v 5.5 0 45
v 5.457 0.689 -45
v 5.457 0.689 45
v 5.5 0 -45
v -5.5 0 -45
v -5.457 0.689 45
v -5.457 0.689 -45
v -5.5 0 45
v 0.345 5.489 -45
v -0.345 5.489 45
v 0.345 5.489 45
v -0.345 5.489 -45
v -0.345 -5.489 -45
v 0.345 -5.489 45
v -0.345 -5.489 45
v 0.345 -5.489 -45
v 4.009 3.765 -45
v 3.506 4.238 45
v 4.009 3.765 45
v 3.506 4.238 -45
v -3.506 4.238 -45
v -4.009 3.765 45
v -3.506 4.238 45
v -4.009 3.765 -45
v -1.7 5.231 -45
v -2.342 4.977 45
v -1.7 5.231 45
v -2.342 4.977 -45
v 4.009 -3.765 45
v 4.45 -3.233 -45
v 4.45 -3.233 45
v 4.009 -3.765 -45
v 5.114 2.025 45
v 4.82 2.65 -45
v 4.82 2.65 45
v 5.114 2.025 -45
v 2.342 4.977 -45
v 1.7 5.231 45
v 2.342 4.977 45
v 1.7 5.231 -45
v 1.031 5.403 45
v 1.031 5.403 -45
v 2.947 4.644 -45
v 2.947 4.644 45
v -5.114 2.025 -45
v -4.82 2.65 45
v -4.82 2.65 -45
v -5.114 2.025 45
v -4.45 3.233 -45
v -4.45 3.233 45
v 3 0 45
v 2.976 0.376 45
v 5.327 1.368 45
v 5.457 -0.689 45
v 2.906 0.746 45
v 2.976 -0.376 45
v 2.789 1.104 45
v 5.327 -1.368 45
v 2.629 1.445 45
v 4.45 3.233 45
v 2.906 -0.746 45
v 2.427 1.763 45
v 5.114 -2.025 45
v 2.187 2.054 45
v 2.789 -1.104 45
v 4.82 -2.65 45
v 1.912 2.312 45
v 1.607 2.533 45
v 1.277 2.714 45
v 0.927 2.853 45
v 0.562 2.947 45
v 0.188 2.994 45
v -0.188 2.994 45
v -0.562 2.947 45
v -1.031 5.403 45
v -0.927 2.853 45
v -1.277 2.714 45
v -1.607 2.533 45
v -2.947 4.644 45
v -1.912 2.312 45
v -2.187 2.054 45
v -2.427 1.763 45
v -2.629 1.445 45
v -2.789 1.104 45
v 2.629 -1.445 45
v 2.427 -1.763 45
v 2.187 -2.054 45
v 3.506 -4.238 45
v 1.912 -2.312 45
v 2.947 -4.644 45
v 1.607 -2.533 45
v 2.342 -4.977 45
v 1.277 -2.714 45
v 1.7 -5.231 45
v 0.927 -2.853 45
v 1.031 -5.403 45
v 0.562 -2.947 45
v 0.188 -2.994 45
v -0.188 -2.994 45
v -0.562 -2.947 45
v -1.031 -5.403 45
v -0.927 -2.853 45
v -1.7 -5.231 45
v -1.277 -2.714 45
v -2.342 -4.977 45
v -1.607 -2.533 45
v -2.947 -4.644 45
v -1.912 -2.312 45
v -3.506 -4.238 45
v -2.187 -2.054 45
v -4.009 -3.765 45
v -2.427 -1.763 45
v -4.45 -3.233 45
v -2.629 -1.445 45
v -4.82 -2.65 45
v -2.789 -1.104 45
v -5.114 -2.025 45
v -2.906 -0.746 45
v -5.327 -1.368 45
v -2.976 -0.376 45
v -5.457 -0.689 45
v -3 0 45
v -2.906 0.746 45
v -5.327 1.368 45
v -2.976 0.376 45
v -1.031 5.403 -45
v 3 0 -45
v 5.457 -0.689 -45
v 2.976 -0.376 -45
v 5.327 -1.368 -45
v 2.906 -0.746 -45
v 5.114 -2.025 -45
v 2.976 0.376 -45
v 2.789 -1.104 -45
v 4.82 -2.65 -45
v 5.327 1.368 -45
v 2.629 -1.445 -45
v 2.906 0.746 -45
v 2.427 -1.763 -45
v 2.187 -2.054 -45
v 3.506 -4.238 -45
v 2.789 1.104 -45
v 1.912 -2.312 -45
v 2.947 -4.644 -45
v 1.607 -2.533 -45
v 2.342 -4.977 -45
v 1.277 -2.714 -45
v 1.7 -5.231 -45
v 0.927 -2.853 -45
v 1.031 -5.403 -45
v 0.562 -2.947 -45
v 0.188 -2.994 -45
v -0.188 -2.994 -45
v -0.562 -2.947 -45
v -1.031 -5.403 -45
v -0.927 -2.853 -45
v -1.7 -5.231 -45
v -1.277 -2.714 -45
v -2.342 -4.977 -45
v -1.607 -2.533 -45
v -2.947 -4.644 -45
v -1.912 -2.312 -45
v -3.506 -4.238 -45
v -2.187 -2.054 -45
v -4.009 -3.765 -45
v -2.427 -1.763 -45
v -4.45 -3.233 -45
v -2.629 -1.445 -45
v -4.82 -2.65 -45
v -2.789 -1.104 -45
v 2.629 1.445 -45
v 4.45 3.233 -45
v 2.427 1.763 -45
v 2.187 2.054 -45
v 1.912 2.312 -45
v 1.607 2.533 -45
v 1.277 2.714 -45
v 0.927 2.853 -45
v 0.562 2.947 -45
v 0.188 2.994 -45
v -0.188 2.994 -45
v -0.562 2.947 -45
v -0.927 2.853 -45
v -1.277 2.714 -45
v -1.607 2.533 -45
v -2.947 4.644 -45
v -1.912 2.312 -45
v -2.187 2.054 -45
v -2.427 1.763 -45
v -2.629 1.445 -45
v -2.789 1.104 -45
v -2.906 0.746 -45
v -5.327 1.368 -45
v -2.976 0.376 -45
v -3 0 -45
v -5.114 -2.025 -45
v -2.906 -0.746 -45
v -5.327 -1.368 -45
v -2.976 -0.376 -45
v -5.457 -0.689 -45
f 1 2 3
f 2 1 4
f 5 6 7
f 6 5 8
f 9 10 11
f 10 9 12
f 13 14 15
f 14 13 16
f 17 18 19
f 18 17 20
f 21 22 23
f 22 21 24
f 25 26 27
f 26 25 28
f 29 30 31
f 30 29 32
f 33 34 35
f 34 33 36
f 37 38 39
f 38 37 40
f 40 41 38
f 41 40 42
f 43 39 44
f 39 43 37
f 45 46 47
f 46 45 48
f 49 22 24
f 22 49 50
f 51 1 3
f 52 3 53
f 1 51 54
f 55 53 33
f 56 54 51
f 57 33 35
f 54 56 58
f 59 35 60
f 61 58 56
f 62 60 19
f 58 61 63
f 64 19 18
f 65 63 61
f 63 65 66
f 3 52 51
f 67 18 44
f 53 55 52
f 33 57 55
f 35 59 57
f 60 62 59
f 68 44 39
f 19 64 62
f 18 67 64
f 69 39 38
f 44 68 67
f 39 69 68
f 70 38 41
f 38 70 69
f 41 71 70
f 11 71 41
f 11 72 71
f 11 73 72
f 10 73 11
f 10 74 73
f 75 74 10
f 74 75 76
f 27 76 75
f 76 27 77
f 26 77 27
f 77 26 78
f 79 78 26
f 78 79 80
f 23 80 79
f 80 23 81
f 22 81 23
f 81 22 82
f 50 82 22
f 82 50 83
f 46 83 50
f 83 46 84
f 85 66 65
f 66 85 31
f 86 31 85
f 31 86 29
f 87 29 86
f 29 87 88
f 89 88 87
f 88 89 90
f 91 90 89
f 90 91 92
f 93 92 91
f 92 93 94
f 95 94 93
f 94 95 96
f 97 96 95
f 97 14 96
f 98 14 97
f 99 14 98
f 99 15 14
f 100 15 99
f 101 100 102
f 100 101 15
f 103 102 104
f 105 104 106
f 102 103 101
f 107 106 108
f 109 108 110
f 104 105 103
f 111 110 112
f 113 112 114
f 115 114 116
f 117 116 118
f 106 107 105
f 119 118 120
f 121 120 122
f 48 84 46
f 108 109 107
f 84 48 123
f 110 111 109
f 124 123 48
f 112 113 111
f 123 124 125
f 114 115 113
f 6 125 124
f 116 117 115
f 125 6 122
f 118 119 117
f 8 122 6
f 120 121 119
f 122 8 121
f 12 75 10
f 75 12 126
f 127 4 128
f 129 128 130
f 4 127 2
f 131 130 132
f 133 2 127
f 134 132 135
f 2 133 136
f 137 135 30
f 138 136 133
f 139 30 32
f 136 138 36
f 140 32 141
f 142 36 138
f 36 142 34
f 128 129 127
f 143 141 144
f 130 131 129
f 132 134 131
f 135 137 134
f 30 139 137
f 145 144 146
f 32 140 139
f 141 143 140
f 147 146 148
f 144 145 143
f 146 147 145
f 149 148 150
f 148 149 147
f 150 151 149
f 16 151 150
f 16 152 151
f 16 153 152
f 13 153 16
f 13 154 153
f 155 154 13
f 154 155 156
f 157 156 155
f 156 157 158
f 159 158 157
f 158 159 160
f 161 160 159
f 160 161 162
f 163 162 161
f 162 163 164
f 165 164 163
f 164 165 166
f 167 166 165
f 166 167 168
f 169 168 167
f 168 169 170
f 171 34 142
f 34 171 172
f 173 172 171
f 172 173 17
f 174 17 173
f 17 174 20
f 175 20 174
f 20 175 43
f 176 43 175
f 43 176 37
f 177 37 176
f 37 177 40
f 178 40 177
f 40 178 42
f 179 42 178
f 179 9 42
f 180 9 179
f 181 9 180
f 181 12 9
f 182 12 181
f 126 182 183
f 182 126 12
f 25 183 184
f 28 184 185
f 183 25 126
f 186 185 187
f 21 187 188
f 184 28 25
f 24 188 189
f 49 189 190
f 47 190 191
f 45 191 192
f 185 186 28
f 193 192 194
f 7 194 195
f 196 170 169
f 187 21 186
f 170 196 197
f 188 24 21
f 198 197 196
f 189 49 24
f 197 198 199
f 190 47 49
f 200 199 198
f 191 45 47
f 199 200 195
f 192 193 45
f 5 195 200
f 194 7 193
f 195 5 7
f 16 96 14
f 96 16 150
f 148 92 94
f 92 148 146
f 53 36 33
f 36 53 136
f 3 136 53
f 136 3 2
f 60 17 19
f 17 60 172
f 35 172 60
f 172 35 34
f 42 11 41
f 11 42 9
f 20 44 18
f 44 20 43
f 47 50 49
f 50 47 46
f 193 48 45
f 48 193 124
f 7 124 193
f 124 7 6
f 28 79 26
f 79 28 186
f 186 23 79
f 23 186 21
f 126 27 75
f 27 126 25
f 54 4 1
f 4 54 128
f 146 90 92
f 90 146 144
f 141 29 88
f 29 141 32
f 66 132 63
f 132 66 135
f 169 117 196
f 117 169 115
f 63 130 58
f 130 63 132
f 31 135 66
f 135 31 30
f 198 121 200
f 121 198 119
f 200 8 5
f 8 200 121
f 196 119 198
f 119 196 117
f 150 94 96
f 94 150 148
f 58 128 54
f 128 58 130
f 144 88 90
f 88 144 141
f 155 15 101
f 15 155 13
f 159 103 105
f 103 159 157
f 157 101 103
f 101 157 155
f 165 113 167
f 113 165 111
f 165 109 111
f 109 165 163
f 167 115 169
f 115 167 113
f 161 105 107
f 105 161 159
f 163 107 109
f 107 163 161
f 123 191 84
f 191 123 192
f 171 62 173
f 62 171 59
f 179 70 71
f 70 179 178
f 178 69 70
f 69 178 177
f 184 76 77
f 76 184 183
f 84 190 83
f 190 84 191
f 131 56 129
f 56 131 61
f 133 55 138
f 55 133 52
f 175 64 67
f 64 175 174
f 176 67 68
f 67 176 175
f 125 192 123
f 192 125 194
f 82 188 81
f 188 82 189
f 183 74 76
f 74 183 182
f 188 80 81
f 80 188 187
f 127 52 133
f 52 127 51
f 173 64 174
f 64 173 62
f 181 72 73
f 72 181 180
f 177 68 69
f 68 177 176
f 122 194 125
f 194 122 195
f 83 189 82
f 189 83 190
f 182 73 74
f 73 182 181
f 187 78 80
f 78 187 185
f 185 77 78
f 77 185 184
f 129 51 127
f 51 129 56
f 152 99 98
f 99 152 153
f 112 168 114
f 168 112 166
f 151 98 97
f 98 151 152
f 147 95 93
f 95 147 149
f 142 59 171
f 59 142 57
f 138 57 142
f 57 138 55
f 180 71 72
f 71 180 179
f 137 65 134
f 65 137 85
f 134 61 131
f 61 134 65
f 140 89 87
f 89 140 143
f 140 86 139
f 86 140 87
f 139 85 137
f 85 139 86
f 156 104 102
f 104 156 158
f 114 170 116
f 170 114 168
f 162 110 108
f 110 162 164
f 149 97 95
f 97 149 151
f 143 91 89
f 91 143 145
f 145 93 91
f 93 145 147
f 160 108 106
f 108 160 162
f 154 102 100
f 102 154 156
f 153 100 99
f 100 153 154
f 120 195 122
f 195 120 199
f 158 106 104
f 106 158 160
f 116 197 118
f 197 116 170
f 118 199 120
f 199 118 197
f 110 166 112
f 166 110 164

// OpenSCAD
$fn = 50;


difference() {
	union() {
		translate(v = [0, 0, -45.0000000000]) {
			cylinder(h = 90, r = 5.5000000000);
		}
	}
	union() {
		translate(v = [0, 0, -100.0000000000]) {
			cylinder(h = 200, r = 3.0000000000);
		}
	}
}
